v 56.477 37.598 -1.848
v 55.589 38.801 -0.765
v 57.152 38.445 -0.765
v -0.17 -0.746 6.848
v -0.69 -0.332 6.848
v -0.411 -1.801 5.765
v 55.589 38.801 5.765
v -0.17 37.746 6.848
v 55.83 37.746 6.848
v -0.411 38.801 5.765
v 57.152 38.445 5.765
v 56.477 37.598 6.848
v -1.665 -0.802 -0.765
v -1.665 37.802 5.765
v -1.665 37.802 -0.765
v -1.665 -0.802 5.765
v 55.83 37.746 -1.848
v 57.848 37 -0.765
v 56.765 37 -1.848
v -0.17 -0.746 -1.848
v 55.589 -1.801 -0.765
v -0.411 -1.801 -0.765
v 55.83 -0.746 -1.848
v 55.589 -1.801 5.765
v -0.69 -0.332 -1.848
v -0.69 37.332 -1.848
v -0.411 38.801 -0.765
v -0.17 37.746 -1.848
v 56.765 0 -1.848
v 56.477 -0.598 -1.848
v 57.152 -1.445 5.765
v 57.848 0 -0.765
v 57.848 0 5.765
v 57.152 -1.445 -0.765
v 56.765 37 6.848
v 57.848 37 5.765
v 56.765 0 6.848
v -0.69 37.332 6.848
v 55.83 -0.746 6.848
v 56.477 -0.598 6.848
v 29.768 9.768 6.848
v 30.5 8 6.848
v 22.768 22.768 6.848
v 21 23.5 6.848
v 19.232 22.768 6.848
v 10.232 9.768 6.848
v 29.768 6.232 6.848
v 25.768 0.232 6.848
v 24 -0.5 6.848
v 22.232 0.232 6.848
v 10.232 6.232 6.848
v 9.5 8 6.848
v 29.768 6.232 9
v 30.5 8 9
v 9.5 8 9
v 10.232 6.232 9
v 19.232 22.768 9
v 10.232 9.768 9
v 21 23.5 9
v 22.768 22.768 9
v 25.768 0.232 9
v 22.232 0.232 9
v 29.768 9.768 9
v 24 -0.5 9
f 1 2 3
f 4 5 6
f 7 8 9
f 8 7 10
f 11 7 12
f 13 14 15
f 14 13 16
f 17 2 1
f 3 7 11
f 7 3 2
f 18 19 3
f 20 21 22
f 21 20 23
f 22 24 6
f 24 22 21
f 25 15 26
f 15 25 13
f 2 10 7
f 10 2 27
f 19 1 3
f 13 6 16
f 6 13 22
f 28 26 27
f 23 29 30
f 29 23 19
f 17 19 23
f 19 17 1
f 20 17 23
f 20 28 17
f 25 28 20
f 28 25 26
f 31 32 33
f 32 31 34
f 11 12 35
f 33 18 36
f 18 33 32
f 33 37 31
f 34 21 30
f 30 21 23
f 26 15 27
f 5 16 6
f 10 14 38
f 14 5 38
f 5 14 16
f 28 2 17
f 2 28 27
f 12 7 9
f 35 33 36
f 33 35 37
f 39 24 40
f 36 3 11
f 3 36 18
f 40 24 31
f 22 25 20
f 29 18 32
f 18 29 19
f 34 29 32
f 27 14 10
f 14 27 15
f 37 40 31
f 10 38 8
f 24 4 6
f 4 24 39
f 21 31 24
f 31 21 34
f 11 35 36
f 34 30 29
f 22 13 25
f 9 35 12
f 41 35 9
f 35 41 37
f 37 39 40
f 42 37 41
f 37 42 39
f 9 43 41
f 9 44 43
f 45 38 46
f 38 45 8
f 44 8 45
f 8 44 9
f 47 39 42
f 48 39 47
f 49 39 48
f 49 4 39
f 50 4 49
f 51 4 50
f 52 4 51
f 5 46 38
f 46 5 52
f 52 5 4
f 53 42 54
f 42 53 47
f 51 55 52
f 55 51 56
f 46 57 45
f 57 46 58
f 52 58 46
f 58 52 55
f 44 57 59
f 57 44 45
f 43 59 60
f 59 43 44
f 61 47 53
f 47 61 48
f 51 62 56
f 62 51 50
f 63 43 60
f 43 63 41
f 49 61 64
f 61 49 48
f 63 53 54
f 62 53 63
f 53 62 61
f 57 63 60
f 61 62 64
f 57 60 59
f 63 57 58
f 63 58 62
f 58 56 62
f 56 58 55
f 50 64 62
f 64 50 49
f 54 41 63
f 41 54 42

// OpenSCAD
minkowski_factor = 2;
depth = 9 - minkowski_factor * 2;
camera_depth = 4;

minkowski() {
	sphere(minkowski_factor);
	cube([58 - minkowski_factor, 39 - minkowski_factor, depth]);
}
hull() {
	translate([28, 8, depth]) cylinder(d = 5, h = camera_depth);
	translate([24, 2, depth]) cylinder(d = 5, h = camera_depth);
	translate([21, 21, depth]) cylinder(d = 5, h = camera_depth);
	translate([12, 8, depth]) cylinder(d = 5, h = camera_depth);
}
